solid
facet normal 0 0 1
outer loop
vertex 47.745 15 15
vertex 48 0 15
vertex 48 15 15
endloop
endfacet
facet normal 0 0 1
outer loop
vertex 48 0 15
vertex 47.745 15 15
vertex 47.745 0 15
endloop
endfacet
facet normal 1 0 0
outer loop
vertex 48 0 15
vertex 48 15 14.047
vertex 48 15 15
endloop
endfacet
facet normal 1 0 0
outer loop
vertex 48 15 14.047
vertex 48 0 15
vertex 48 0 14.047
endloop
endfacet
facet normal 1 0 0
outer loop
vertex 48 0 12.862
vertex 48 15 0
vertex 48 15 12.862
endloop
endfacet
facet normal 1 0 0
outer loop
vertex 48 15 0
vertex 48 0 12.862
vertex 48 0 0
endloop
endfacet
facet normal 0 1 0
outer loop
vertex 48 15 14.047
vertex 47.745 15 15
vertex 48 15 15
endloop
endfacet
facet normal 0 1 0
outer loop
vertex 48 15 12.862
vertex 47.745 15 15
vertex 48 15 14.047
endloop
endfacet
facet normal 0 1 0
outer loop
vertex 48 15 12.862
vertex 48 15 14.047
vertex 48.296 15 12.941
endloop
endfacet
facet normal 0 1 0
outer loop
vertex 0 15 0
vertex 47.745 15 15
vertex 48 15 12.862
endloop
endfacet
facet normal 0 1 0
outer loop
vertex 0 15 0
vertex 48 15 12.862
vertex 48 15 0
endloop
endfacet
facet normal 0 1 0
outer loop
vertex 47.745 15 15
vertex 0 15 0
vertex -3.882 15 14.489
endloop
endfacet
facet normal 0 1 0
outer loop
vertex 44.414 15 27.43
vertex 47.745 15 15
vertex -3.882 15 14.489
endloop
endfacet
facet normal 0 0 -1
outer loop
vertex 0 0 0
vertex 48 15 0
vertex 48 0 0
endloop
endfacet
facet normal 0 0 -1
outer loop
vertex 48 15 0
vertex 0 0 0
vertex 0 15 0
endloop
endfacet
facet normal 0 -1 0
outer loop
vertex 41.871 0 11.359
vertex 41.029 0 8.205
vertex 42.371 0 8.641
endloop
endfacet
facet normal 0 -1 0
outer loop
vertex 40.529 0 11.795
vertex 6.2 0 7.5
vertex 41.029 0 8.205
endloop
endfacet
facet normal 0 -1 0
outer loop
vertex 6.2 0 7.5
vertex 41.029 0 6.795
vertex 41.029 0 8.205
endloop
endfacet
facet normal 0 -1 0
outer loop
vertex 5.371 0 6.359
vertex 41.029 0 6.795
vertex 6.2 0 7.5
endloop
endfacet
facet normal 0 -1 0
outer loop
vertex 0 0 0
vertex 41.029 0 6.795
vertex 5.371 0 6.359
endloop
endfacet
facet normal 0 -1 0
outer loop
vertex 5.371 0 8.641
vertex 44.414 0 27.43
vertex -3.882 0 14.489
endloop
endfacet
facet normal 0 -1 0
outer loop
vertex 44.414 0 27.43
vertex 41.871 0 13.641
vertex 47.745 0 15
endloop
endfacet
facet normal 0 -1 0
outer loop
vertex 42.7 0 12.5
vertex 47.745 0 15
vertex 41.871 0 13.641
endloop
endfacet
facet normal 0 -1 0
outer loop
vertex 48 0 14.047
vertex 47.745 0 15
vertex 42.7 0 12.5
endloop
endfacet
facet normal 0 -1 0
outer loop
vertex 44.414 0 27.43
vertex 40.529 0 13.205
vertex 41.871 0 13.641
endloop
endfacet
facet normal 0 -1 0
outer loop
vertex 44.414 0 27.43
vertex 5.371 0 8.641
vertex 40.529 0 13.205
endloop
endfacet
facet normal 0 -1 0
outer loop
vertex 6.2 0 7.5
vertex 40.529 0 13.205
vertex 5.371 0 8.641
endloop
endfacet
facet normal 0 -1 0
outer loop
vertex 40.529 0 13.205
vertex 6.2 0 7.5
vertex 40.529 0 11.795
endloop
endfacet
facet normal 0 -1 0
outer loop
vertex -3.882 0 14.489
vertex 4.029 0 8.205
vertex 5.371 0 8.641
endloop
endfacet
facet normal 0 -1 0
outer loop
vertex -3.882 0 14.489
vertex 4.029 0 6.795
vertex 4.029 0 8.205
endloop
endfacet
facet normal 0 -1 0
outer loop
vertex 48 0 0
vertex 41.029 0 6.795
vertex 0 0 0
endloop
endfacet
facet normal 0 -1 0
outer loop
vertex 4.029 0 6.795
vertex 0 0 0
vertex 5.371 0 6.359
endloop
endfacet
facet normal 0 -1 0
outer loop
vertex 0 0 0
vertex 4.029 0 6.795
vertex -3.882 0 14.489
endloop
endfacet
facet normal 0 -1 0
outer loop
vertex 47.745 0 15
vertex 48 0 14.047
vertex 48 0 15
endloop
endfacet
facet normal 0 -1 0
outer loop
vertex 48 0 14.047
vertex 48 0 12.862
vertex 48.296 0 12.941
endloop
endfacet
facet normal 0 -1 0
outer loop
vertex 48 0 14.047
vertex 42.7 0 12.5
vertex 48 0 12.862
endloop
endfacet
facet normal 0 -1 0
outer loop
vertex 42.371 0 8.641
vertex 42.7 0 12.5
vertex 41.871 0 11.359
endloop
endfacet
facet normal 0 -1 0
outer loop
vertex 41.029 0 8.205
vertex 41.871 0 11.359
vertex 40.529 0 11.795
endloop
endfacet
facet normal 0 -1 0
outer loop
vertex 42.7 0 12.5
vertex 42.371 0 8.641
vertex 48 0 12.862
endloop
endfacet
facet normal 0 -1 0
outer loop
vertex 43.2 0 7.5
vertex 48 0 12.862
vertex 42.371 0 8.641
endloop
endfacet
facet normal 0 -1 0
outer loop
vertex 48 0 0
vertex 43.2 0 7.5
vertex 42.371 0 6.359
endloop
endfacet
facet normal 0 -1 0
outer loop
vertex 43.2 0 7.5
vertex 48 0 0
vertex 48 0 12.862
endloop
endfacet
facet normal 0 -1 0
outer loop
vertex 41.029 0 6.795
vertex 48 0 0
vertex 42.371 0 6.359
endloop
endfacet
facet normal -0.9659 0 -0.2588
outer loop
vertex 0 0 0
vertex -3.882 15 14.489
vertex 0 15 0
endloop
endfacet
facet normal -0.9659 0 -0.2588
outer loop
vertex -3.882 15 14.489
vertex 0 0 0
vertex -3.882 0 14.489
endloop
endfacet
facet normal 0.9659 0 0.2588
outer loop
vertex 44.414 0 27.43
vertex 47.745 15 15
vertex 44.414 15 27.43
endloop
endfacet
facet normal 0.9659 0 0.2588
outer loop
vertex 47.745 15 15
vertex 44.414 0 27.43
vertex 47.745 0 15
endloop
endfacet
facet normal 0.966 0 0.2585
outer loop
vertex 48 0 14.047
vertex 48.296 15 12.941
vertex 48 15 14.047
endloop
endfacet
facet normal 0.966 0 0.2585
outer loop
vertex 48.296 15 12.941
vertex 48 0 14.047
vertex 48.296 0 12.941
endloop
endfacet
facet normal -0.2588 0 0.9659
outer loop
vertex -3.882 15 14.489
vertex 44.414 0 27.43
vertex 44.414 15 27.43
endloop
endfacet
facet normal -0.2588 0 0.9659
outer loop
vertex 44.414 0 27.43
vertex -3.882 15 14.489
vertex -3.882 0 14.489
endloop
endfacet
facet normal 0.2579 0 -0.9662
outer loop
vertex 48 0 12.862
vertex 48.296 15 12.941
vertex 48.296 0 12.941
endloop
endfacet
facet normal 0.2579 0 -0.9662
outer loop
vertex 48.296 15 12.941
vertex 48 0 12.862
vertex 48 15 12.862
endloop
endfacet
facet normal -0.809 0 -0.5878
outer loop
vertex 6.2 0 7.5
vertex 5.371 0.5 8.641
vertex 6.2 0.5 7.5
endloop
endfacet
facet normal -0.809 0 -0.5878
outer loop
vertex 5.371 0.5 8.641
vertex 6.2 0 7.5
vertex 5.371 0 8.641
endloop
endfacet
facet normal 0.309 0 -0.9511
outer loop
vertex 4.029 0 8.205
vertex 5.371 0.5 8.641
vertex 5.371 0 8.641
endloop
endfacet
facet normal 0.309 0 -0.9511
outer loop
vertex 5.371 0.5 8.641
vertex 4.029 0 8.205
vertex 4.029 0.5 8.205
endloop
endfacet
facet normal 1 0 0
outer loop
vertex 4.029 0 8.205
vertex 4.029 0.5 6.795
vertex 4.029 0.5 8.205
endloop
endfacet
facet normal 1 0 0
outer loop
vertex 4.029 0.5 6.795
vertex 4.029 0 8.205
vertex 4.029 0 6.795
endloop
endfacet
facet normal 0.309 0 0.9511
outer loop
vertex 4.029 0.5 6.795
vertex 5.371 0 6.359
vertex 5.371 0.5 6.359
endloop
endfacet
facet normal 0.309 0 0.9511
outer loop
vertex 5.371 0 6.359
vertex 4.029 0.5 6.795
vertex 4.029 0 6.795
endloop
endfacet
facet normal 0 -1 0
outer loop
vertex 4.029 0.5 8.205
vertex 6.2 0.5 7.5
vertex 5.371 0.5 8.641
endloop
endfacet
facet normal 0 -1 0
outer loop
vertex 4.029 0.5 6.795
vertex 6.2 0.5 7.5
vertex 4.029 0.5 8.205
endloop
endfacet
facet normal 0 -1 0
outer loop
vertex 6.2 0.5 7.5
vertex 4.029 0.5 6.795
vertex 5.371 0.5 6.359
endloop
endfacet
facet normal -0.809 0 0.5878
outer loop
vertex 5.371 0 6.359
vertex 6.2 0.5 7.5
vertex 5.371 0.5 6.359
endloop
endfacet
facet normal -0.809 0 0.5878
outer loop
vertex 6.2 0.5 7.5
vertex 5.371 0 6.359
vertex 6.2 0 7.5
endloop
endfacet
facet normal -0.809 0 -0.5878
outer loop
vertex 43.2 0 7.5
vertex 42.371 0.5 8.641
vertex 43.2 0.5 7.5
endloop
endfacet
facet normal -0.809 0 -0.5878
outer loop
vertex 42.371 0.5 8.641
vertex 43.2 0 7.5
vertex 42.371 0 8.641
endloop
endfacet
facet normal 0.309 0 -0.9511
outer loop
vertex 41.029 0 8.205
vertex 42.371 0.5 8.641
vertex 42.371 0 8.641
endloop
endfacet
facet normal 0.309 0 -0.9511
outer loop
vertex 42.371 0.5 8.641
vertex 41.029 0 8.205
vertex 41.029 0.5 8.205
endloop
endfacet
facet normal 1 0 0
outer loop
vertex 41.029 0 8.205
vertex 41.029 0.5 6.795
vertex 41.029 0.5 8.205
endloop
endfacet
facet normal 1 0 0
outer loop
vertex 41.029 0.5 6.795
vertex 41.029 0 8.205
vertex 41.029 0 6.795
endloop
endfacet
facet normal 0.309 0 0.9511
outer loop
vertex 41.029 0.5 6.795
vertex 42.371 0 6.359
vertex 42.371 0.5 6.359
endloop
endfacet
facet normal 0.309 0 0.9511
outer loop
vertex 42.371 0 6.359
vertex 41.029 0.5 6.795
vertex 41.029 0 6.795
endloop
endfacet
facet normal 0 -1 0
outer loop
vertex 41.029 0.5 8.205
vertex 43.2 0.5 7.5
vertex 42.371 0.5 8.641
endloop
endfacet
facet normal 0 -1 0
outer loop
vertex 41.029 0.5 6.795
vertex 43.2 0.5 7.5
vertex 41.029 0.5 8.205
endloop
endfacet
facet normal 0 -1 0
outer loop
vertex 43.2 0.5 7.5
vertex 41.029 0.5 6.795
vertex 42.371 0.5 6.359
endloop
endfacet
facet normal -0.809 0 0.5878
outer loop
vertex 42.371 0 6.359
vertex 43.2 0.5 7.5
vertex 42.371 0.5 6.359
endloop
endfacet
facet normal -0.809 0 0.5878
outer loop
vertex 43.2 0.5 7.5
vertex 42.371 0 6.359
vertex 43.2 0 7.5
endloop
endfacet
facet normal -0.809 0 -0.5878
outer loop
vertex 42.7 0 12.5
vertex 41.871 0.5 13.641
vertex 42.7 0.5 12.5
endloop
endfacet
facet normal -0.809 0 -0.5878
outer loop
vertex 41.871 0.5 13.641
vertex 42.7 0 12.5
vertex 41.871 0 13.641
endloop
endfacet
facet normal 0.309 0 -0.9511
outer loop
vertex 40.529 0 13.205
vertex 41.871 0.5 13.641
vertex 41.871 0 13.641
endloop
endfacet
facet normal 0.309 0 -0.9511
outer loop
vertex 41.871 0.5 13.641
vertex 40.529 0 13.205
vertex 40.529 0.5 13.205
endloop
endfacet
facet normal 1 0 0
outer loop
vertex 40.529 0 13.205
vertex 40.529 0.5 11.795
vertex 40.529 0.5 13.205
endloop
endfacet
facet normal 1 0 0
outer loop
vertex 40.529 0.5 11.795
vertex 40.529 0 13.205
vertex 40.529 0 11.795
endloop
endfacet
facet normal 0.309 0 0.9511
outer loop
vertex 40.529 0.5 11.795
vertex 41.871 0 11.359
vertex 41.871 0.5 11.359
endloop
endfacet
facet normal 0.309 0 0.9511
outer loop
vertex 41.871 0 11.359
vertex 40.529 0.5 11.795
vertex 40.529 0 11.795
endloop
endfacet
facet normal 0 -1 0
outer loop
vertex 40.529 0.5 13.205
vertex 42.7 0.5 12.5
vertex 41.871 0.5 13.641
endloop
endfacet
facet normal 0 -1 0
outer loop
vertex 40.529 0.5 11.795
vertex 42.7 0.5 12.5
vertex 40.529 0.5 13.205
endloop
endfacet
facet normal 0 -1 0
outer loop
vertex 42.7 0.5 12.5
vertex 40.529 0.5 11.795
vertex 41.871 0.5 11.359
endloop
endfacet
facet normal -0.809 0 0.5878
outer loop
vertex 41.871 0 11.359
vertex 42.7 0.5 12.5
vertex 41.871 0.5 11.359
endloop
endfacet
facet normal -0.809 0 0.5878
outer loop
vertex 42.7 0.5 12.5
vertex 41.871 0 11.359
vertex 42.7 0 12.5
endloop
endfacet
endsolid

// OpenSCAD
// Definition size of housing
// **************************

sizex = 50;
sizey = 15;
depth = 10;
thick = 2;
gap=2.5;

//Definition of circle angular resolution
resol        = 36;  


union () {
 difference () {
 
   union () {
   // main block
   cube ( [sizex-2, sizey, sizey] );

   rotate(a=[0,-15,0]) {
    cube ( [sizex, sizey, sizey] );
   }
       
   }
     
   //screw holes
   translate ([5,0.5,sizey/2]) {
       rotate(a=[90,0,0]) {
   cylinder ( h=8, r=1.2);
       };
   };

   translate ([5+37,0.5,sizey/2]) {
       rotate(a=[90,0,0]) {
   cylinder ( h=8, r=1.2);
       };
   };
   
   translate ([5+36.5,0.5,sizey/2 + 5]) {
       rotate(a=[90,0,0]) {
   cylinder ( h=8, r=1.2);
       };
   };

         
 };      
 
 
}
